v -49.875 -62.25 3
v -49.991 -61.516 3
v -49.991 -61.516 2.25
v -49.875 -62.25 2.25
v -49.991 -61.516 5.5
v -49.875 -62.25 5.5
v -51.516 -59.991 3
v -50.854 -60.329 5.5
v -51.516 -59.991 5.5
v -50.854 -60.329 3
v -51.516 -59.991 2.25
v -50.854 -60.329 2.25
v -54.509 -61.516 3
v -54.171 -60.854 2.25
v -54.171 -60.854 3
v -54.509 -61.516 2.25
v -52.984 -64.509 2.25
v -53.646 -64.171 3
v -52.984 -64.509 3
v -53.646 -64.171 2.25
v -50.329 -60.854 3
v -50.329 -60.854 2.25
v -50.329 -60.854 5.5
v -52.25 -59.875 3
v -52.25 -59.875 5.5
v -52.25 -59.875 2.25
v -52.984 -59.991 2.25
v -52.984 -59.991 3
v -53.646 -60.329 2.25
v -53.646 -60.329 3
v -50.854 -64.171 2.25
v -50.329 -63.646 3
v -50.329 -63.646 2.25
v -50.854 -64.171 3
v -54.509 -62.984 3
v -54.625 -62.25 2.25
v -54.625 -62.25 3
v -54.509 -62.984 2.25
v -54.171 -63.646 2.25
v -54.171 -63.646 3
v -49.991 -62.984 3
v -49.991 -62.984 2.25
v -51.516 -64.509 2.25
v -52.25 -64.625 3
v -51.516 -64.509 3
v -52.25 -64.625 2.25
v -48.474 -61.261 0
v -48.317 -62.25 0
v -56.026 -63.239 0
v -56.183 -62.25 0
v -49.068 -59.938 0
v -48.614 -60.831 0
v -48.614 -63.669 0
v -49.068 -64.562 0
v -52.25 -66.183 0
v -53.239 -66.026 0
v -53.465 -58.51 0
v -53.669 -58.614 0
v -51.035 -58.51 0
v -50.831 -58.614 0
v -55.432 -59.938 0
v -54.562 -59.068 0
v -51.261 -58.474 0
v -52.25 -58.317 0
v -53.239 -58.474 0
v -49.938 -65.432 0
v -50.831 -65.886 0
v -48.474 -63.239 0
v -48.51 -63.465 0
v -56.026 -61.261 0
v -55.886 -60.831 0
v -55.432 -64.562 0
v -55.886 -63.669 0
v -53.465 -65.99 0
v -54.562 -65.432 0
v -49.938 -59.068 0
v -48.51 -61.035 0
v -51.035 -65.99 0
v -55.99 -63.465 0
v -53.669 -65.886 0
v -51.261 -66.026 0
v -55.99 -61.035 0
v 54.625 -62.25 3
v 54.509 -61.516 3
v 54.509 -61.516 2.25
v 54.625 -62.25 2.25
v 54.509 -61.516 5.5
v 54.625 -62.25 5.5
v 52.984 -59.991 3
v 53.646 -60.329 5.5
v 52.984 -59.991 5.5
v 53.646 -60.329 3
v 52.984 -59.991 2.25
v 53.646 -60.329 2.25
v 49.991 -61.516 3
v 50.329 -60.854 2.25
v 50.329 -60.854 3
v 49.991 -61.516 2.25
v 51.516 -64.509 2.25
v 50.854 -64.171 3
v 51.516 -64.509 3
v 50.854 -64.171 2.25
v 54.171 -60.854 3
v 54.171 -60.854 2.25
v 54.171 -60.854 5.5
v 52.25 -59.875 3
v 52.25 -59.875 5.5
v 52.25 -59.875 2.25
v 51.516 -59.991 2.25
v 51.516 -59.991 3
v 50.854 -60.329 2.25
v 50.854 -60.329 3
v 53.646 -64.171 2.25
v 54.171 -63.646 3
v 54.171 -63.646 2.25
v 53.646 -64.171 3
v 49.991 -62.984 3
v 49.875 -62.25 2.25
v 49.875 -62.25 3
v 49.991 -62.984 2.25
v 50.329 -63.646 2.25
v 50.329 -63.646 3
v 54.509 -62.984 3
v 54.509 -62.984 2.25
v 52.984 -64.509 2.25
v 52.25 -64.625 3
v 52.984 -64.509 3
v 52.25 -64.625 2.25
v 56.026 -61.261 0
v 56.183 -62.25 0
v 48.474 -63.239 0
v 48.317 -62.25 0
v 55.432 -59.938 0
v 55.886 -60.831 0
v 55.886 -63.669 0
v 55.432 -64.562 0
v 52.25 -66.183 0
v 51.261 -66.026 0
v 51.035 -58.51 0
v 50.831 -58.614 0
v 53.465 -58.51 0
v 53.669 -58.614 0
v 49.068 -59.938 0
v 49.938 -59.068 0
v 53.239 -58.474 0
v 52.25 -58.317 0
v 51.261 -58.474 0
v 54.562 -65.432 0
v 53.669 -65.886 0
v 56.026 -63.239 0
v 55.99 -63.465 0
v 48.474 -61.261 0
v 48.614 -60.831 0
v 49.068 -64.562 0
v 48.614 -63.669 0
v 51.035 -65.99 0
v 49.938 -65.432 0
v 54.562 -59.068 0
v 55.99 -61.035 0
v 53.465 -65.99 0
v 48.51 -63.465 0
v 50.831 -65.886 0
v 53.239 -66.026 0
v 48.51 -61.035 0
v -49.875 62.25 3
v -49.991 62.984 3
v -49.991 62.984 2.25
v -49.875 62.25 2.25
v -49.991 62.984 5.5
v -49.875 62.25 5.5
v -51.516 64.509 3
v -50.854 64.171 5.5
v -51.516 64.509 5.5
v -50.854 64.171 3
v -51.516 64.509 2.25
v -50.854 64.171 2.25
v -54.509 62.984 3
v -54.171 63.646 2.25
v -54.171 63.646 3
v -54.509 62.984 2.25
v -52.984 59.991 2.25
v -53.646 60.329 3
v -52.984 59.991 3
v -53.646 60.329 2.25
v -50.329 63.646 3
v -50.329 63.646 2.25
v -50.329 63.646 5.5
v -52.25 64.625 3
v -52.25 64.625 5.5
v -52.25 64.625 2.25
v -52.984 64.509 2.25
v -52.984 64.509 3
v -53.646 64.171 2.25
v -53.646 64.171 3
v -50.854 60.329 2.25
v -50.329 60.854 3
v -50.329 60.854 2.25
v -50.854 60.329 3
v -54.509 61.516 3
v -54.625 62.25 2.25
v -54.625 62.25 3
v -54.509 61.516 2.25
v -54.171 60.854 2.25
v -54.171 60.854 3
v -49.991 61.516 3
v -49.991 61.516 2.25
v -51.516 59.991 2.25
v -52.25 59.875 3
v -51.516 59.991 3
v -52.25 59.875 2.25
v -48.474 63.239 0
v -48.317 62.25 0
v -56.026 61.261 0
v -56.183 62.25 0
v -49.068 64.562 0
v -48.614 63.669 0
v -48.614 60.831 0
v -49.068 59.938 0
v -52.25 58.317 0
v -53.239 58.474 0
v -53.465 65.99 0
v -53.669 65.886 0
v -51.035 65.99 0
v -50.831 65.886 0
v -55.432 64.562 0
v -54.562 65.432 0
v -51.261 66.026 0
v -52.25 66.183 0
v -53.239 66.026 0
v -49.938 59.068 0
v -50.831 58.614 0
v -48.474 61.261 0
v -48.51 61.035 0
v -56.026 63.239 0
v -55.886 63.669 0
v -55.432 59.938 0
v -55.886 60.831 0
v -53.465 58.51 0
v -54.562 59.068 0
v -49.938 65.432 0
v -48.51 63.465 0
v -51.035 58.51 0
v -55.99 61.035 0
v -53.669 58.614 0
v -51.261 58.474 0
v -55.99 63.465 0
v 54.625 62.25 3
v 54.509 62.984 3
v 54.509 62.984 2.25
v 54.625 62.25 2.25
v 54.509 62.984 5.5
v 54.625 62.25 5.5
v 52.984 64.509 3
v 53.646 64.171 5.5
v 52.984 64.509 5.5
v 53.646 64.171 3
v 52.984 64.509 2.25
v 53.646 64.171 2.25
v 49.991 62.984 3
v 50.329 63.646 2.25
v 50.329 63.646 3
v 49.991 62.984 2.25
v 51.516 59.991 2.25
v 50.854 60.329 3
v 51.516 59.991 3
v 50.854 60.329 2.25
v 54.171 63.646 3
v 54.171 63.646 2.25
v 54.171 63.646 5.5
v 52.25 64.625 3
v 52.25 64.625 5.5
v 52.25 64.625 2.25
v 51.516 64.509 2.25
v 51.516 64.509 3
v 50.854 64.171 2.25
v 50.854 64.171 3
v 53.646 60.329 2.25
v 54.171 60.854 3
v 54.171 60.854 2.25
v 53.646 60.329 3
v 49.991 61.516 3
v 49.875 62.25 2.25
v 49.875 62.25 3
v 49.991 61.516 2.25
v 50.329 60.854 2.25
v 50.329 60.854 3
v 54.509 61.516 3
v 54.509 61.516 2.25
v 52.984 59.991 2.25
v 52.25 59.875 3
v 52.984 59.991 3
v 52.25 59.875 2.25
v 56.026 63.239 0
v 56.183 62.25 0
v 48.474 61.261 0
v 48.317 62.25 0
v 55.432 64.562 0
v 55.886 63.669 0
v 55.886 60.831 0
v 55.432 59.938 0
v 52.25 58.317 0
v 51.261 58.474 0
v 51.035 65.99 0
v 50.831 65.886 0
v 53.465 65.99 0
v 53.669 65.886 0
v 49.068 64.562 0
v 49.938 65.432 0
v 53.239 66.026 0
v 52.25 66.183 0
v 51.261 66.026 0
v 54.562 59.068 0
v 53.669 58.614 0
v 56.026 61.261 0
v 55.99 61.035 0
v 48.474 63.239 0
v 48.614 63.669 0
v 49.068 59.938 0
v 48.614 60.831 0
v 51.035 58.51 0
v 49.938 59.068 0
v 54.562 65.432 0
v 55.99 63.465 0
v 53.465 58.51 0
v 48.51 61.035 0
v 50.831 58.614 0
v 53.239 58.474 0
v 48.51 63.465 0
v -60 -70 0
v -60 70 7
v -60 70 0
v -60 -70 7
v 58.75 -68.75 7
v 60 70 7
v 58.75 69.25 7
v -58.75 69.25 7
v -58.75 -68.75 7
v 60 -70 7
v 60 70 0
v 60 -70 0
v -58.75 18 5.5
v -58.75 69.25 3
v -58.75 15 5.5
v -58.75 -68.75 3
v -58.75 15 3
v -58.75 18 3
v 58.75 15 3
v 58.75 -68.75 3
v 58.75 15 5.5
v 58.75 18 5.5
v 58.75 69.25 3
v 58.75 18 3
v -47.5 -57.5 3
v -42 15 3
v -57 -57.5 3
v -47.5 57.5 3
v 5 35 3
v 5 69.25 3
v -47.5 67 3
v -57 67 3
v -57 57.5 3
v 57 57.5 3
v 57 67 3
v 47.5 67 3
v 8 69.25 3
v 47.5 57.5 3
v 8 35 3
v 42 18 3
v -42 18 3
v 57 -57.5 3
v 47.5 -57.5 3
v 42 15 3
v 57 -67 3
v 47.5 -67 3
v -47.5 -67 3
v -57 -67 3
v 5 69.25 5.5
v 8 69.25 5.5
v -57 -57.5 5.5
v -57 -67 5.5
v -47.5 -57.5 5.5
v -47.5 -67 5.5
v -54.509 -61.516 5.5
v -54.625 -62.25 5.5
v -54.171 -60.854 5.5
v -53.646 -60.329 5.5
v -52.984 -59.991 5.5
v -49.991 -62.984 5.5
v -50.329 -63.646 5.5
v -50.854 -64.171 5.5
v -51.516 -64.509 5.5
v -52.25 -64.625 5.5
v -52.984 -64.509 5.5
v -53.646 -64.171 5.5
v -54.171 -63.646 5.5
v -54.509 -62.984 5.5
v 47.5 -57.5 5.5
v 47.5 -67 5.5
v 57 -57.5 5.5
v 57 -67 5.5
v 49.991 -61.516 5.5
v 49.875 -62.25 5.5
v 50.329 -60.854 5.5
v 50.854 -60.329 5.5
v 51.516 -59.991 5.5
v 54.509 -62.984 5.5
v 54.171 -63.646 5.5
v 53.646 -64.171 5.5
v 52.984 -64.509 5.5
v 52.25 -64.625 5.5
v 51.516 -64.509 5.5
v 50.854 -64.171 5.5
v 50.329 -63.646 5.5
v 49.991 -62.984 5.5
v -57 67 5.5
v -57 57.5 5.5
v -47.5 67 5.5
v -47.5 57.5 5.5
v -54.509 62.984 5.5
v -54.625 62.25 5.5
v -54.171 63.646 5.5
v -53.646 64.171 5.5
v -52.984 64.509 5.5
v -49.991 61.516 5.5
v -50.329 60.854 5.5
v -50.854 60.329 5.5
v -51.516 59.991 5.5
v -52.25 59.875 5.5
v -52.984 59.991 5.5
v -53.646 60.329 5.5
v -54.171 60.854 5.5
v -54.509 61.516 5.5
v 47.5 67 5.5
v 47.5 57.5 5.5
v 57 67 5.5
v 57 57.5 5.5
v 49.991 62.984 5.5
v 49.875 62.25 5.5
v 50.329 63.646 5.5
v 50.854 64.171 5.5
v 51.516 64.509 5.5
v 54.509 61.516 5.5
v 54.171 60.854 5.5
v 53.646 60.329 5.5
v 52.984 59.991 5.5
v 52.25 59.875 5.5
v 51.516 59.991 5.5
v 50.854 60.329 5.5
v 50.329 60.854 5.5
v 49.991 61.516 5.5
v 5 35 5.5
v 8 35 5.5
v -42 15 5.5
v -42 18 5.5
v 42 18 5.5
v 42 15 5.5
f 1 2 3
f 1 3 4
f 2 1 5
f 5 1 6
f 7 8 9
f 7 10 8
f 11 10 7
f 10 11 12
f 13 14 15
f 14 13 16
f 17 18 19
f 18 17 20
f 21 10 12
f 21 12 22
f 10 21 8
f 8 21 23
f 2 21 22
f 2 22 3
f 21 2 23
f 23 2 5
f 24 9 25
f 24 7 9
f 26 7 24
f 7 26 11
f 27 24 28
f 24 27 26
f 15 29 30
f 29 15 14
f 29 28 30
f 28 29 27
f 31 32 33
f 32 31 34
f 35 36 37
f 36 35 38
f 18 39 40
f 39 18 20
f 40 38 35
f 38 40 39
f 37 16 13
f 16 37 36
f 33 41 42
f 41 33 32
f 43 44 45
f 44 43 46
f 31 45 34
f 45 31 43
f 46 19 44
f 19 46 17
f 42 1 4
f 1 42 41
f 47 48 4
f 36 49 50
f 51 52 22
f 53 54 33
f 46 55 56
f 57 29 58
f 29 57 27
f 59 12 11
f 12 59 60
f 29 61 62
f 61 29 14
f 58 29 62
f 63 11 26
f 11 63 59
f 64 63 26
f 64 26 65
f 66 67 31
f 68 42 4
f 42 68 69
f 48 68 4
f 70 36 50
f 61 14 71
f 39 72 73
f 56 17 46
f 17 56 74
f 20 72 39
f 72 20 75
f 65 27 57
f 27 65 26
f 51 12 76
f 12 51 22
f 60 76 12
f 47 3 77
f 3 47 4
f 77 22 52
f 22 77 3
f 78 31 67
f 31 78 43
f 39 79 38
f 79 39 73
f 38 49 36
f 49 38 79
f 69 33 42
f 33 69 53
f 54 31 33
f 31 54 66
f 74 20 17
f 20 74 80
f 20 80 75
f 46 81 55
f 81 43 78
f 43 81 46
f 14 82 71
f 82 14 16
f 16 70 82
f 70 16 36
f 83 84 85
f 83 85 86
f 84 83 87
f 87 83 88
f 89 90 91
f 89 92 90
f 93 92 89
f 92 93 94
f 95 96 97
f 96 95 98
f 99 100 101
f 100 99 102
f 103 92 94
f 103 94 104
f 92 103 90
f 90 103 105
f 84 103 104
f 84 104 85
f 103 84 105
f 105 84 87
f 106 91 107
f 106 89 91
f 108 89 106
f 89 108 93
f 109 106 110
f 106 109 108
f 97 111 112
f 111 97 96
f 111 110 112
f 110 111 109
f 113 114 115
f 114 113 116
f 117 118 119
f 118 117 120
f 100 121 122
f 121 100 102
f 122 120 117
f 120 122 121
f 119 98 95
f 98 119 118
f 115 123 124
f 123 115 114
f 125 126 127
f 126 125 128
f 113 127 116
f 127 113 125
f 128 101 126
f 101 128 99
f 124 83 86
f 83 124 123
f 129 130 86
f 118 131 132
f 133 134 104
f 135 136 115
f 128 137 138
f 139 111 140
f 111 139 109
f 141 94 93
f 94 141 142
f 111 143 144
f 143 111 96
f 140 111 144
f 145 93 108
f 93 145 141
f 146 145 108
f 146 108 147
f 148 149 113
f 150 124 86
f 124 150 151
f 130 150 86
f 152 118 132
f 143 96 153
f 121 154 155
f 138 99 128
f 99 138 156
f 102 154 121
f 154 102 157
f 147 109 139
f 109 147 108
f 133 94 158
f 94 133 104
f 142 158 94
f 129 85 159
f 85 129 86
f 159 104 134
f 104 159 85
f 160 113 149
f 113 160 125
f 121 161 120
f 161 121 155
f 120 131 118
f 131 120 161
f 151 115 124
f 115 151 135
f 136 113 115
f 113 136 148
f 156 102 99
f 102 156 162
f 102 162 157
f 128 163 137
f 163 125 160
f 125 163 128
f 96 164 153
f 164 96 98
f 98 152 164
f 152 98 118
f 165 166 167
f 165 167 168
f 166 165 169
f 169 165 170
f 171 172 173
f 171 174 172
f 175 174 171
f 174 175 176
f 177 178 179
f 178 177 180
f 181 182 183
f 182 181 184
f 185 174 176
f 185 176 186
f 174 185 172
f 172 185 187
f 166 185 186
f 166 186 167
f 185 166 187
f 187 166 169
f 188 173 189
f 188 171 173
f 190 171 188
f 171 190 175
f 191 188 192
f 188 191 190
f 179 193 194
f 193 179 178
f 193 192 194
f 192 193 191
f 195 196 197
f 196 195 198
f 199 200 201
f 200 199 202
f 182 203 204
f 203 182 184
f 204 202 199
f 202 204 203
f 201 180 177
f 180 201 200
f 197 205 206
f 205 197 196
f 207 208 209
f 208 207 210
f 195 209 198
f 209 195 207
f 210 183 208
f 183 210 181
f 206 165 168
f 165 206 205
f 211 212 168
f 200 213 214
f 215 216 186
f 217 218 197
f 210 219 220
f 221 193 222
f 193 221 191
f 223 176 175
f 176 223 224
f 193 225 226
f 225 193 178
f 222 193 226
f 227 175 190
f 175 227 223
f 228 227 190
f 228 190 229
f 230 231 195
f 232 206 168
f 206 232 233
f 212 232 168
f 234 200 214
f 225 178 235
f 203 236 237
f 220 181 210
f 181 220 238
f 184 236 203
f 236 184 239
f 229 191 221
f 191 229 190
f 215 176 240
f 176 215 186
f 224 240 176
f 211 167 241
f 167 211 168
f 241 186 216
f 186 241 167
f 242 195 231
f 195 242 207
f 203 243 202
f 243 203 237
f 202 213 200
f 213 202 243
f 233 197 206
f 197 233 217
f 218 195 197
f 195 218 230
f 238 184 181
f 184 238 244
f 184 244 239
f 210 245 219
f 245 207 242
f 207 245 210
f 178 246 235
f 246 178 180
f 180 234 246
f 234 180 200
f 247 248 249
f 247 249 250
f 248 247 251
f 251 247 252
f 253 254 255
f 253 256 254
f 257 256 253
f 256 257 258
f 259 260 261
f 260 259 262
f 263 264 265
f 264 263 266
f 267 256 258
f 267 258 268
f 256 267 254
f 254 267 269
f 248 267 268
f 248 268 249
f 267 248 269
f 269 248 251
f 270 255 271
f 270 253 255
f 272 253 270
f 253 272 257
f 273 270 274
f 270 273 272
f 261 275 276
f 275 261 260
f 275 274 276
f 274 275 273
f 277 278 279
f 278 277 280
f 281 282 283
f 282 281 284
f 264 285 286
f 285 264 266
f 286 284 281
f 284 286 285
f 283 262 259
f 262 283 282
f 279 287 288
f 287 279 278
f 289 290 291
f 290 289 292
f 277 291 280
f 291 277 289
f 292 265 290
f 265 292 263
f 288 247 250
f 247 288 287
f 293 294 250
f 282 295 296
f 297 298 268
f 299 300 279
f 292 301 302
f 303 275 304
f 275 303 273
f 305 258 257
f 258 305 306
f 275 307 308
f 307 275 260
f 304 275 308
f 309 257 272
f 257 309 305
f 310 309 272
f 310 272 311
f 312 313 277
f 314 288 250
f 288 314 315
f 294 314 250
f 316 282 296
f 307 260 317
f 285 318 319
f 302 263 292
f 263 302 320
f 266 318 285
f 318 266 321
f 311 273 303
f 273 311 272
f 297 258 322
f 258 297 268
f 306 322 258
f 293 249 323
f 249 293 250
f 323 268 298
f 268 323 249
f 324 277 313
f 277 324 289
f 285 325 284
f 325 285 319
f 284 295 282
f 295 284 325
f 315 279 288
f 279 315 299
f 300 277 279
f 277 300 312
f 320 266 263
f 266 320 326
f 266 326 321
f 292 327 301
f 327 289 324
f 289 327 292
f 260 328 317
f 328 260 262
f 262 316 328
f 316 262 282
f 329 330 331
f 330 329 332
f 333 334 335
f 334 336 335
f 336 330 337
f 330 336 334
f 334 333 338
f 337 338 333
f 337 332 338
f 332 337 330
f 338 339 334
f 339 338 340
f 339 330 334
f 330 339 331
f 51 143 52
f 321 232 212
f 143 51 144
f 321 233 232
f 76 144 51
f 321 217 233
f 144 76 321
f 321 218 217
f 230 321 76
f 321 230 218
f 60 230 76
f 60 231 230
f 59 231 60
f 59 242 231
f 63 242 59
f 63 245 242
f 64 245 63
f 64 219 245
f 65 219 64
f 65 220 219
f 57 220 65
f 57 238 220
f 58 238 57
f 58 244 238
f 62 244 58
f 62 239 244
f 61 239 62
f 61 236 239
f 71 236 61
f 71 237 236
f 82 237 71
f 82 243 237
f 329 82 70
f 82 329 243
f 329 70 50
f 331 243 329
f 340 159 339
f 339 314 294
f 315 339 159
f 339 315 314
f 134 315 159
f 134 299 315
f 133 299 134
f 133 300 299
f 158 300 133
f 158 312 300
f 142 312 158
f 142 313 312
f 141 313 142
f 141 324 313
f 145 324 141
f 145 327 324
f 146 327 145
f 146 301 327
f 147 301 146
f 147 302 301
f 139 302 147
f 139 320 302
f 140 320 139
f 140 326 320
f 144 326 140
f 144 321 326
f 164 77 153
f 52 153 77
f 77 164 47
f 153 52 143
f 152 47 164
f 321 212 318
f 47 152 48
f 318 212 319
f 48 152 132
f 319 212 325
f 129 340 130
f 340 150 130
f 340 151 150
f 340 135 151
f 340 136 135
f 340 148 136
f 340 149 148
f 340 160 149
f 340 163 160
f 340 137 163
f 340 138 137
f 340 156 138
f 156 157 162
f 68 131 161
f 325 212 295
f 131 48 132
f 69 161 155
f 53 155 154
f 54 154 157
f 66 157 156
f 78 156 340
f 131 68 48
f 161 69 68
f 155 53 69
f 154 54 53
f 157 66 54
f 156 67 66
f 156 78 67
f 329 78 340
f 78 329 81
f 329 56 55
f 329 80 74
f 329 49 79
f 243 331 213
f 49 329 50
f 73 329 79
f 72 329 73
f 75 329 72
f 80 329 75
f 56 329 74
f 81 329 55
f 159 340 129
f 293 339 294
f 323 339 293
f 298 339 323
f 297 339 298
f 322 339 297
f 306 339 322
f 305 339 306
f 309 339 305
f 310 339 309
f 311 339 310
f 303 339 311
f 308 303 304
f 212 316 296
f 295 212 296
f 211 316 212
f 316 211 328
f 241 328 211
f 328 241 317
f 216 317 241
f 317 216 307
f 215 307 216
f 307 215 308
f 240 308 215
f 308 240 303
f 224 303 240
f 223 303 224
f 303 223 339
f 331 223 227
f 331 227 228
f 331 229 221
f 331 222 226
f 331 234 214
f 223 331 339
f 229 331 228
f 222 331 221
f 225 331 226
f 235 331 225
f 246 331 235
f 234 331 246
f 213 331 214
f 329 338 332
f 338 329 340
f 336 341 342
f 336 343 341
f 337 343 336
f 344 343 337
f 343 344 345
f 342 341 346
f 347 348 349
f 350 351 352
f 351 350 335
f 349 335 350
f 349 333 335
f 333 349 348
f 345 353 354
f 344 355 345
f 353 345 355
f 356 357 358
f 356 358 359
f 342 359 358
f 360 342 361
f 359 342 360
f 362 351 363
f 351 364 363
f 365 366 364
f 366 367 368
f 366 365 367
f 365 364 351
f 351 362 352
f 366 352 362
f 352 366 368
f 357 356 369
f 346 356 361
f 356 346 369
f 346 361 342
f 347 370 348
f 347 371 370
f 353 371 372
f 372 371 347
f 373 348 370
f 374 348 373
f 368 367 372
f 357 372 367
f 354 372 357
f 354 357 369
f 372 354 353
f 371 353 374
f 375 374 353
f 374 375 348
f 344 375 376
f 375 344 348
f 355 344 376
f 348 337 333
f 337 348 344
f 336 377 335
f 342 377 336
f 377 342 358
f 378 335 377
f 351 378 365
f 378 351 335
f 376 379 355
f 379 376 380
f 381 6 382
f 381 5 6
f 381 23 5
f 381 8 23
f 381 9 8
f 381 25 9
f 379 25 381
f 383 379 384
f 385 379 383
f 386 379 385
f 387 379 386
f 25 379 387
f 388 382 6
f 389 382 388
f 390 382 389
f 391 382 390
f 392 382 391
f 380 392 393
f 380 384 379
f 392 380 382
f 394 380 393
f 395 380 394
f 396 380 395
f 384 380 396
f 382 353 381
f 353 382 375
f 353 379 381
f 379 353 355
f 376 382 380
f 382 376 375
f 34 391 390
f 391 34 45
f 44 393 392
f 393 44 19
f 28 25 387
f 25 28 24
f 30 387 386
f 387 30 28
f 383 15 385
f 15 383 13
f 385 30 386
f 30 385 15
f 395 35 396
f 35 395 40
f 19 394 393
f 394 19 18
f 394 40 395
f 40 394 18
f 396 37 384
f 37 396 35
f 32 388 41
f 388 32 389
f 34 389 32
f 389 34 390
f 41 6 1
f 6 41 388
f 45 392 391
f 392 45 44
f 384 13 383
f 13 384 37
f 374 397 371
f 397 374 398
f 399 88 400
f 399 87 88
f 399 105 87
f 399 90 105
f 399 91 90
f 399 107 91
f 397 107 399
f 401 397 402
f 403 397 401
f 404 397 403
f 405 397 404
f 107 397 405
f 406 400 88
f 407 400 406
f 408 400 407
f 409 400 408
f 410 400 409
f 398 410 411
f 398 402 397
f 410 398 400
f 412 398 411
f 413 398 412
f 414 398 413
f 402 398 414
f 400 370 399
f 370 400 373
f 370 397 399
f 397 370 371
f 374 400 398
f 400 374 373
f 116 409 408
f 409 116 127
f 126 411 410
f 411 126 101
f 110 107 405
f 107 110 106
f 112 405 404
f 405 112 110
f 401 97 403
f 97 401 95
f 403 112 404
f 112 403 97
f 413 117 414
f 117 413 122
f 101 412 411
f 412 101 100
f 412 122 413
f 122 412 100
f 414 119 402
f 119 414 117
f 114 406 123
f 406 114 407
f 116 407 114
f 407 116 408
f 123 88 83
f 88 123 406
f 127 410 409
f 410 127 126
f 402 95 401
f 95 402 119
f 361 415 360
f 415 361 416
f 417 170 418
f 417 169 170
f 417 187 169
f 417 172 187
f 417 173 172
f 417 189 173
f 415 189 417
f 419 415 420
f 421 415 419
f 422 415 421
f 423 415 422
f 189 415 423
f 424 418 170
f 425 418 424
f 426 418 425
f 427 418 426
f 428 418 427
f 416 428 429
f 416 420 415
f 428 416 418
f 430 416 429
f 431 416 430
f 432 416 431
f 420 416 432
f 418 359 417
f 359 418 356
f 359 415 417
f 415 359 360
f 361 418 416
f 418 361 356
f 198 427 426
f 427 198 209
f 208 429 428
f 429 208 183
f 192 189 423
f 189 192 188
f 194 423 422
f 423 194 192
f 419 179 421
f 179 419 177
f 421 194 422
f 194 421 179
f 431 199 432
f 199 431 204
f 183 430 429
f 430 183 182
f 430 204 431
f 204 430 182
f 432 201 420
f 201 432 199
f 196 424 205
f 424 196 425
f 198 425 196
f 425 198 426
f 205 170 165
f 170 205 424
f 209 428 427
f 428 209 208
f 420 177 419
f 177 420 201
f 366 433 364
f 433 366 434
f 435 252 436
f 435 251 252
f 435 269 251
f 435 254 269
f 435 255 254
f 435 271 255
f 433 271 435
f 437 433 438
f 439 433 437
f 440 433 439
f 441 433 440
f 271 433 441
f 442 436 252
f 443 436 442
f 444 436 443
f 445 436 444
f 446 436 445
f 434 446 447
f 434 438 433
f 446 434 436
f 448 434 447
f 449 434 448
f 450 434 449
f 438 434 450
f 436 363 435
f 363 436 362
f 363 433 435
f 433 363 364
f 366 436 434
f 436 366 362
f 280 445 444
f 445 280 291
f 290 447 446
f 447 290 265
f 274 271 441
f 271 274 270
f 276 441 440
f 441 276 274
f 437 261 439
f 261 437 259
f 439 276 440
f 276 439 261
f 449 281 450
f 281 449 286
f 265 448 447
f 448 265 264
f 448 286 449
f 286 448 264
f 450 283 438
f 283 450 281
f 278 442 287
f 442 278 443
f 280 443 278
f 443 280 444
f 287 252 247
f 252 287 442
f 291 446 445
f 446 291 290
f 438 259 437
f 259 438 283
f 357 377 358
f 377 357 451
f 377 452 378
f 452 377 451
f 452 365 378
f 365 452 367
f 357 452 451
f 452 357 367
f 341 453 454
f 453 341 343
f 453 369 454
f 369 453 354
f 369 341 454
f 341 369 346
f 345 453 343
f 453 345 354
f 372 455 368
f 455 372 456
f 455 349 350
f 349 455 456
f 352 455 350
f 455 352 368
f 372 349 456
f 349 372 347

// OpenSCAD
// GLOBALS
// Use this when cutting out to "punch through" faces.
// Clears up rendering artifacts and non-2-manifold errors.
xs = 1;
// Extra space for part interaction.
clr_off = 0.25;

// m3 dimensions
m3_post_sz = 8;
m3_screw_head_h = 2.5;
m3_screw_head_r = 6 / 2;
m3_shaft_r = 3.2 / 2;

// m4 dimensions
m4_post_sz = 9.5;
m4_screw_head_h = 3;
m4_screw_head_r = 9 / 2;
m4_shaft_r = 4.5 / 2;

// Switch screw size here. (So lazy.) 
// TODO: be less lazy.
post_sz = m4_post_sz;
screw_head_h = m4_screw_head_h;
screw_head_r = m4_screw_head_r;
shaft_r = m4_shaft_r;

module screw_hole(x, y, z, h) {
  translate([x, y, z]) {
    // Center over the screw post.
    translate([post_sz/2, post_sz/2, -xs]) {
      cylinder(h, 
               shaft_r + clr_off/2, 
               shaft_r + clr_off/2, $fn=20);
      cylinder(screw_head_h + clr_off, 
               screw_head_r + clr_off/2, 
               shaft_r + clr_off/2, $fn=20);
    }
  }
}

module screw_post(x, y, z, h) {
  translate([x, y, z]) {
    difference() {
      cube([post_sz, post_sz, h]);
      translate([post_sz/2, post_sz/2, -xs]) {
        cylinder(h + 2*xs, 
                 shaft_r + clr_off/2, 
                 shaft_r + clr_off/2, $fn=20);
        // Create a extra space for bolt head to sit flush.
//        translate(0, 0, -xs) {
//          cylinder(.1+xs, 
//                   screw_head_r + .05, 
//                   screw_head_r + .05, $fn=20);
//        }
      }
    }
  }
}

module sous_vide_lid() {
  body_x = 120;
  body_y = 140;
  lid_z = 7;
  wall_thk = 3;
  lip_thk = 1.5;
  // Back lip is 1mm to better line up with power port lips.
  port_lip_thk = 1.0;  
  translate([-(body_x/2), -(body_y/2), 0]) {
    difference() {
      // exterior
      cube([body_x, 
            body_y, 
            lid_z]);
      // cutout interior and builds lip
      translate([lip_thk-clr_off, 
                 lip_thk-clr_off, 
                 wall_thk]) {
        cube([(body_x + 2*clr_off) - 2*(lip_thk), 
              (body_y + 2*clr_off) - (lip_thk+port_lip_thk), 
              lid_z]);
      }
      screw_hole(wall_thk, wall_thk, 0, lid_z);
      screw_hole(body_x-wall_thk-post_sz, 
                 wall_thk, 0, lid_z);
      screw_hole(wall_thk, 
                 body_y-wall_thk-post_sz, 0, lid_z);
      screw_hole(body_x-wall_thk-post_sz, 
                 body_y-wall_thk-post_sz, 0, lid_z);
    } // difference
    post_h = lid_z - wall_thk - lip_thk;
    screw_post(wall_thk, wall_thk, wall_thk, 
               post_h);
    screw_post(body_x-wall_thk-post_sz, 
               wall_thk, 
               wall_thk,
               post_h);
    screw_post(wall_thk, 
               body_y-wall_thk-post_sz, 
               wall_thk, 
               post_h);
    screw_post(body_x-wall_thk-post_sz, 
               body_y-wall_thk-post_sz, 
               wall_thk, 
               post_h);
    // Supporting interior walls
    // back divider
    translate([body_x - 52 - wall_thk, body_y-32-wall_thk, wall_thk]) {
      cube([wall_thk, 32+wall_thk, post_h]);
    }
    // side flanges
    translate([lip_thk-clr_off, 85, wall_thk]) {
      cube([16.5+clr_off, wall_thk, post_h]);
    }
    translate([body_x-wall_thk-15, 85, wall_thk]) {
      cube([16.5+clr_off, wall_thk, post_h]);
    }    
  } // view-port
}
sous_vide_lid();
